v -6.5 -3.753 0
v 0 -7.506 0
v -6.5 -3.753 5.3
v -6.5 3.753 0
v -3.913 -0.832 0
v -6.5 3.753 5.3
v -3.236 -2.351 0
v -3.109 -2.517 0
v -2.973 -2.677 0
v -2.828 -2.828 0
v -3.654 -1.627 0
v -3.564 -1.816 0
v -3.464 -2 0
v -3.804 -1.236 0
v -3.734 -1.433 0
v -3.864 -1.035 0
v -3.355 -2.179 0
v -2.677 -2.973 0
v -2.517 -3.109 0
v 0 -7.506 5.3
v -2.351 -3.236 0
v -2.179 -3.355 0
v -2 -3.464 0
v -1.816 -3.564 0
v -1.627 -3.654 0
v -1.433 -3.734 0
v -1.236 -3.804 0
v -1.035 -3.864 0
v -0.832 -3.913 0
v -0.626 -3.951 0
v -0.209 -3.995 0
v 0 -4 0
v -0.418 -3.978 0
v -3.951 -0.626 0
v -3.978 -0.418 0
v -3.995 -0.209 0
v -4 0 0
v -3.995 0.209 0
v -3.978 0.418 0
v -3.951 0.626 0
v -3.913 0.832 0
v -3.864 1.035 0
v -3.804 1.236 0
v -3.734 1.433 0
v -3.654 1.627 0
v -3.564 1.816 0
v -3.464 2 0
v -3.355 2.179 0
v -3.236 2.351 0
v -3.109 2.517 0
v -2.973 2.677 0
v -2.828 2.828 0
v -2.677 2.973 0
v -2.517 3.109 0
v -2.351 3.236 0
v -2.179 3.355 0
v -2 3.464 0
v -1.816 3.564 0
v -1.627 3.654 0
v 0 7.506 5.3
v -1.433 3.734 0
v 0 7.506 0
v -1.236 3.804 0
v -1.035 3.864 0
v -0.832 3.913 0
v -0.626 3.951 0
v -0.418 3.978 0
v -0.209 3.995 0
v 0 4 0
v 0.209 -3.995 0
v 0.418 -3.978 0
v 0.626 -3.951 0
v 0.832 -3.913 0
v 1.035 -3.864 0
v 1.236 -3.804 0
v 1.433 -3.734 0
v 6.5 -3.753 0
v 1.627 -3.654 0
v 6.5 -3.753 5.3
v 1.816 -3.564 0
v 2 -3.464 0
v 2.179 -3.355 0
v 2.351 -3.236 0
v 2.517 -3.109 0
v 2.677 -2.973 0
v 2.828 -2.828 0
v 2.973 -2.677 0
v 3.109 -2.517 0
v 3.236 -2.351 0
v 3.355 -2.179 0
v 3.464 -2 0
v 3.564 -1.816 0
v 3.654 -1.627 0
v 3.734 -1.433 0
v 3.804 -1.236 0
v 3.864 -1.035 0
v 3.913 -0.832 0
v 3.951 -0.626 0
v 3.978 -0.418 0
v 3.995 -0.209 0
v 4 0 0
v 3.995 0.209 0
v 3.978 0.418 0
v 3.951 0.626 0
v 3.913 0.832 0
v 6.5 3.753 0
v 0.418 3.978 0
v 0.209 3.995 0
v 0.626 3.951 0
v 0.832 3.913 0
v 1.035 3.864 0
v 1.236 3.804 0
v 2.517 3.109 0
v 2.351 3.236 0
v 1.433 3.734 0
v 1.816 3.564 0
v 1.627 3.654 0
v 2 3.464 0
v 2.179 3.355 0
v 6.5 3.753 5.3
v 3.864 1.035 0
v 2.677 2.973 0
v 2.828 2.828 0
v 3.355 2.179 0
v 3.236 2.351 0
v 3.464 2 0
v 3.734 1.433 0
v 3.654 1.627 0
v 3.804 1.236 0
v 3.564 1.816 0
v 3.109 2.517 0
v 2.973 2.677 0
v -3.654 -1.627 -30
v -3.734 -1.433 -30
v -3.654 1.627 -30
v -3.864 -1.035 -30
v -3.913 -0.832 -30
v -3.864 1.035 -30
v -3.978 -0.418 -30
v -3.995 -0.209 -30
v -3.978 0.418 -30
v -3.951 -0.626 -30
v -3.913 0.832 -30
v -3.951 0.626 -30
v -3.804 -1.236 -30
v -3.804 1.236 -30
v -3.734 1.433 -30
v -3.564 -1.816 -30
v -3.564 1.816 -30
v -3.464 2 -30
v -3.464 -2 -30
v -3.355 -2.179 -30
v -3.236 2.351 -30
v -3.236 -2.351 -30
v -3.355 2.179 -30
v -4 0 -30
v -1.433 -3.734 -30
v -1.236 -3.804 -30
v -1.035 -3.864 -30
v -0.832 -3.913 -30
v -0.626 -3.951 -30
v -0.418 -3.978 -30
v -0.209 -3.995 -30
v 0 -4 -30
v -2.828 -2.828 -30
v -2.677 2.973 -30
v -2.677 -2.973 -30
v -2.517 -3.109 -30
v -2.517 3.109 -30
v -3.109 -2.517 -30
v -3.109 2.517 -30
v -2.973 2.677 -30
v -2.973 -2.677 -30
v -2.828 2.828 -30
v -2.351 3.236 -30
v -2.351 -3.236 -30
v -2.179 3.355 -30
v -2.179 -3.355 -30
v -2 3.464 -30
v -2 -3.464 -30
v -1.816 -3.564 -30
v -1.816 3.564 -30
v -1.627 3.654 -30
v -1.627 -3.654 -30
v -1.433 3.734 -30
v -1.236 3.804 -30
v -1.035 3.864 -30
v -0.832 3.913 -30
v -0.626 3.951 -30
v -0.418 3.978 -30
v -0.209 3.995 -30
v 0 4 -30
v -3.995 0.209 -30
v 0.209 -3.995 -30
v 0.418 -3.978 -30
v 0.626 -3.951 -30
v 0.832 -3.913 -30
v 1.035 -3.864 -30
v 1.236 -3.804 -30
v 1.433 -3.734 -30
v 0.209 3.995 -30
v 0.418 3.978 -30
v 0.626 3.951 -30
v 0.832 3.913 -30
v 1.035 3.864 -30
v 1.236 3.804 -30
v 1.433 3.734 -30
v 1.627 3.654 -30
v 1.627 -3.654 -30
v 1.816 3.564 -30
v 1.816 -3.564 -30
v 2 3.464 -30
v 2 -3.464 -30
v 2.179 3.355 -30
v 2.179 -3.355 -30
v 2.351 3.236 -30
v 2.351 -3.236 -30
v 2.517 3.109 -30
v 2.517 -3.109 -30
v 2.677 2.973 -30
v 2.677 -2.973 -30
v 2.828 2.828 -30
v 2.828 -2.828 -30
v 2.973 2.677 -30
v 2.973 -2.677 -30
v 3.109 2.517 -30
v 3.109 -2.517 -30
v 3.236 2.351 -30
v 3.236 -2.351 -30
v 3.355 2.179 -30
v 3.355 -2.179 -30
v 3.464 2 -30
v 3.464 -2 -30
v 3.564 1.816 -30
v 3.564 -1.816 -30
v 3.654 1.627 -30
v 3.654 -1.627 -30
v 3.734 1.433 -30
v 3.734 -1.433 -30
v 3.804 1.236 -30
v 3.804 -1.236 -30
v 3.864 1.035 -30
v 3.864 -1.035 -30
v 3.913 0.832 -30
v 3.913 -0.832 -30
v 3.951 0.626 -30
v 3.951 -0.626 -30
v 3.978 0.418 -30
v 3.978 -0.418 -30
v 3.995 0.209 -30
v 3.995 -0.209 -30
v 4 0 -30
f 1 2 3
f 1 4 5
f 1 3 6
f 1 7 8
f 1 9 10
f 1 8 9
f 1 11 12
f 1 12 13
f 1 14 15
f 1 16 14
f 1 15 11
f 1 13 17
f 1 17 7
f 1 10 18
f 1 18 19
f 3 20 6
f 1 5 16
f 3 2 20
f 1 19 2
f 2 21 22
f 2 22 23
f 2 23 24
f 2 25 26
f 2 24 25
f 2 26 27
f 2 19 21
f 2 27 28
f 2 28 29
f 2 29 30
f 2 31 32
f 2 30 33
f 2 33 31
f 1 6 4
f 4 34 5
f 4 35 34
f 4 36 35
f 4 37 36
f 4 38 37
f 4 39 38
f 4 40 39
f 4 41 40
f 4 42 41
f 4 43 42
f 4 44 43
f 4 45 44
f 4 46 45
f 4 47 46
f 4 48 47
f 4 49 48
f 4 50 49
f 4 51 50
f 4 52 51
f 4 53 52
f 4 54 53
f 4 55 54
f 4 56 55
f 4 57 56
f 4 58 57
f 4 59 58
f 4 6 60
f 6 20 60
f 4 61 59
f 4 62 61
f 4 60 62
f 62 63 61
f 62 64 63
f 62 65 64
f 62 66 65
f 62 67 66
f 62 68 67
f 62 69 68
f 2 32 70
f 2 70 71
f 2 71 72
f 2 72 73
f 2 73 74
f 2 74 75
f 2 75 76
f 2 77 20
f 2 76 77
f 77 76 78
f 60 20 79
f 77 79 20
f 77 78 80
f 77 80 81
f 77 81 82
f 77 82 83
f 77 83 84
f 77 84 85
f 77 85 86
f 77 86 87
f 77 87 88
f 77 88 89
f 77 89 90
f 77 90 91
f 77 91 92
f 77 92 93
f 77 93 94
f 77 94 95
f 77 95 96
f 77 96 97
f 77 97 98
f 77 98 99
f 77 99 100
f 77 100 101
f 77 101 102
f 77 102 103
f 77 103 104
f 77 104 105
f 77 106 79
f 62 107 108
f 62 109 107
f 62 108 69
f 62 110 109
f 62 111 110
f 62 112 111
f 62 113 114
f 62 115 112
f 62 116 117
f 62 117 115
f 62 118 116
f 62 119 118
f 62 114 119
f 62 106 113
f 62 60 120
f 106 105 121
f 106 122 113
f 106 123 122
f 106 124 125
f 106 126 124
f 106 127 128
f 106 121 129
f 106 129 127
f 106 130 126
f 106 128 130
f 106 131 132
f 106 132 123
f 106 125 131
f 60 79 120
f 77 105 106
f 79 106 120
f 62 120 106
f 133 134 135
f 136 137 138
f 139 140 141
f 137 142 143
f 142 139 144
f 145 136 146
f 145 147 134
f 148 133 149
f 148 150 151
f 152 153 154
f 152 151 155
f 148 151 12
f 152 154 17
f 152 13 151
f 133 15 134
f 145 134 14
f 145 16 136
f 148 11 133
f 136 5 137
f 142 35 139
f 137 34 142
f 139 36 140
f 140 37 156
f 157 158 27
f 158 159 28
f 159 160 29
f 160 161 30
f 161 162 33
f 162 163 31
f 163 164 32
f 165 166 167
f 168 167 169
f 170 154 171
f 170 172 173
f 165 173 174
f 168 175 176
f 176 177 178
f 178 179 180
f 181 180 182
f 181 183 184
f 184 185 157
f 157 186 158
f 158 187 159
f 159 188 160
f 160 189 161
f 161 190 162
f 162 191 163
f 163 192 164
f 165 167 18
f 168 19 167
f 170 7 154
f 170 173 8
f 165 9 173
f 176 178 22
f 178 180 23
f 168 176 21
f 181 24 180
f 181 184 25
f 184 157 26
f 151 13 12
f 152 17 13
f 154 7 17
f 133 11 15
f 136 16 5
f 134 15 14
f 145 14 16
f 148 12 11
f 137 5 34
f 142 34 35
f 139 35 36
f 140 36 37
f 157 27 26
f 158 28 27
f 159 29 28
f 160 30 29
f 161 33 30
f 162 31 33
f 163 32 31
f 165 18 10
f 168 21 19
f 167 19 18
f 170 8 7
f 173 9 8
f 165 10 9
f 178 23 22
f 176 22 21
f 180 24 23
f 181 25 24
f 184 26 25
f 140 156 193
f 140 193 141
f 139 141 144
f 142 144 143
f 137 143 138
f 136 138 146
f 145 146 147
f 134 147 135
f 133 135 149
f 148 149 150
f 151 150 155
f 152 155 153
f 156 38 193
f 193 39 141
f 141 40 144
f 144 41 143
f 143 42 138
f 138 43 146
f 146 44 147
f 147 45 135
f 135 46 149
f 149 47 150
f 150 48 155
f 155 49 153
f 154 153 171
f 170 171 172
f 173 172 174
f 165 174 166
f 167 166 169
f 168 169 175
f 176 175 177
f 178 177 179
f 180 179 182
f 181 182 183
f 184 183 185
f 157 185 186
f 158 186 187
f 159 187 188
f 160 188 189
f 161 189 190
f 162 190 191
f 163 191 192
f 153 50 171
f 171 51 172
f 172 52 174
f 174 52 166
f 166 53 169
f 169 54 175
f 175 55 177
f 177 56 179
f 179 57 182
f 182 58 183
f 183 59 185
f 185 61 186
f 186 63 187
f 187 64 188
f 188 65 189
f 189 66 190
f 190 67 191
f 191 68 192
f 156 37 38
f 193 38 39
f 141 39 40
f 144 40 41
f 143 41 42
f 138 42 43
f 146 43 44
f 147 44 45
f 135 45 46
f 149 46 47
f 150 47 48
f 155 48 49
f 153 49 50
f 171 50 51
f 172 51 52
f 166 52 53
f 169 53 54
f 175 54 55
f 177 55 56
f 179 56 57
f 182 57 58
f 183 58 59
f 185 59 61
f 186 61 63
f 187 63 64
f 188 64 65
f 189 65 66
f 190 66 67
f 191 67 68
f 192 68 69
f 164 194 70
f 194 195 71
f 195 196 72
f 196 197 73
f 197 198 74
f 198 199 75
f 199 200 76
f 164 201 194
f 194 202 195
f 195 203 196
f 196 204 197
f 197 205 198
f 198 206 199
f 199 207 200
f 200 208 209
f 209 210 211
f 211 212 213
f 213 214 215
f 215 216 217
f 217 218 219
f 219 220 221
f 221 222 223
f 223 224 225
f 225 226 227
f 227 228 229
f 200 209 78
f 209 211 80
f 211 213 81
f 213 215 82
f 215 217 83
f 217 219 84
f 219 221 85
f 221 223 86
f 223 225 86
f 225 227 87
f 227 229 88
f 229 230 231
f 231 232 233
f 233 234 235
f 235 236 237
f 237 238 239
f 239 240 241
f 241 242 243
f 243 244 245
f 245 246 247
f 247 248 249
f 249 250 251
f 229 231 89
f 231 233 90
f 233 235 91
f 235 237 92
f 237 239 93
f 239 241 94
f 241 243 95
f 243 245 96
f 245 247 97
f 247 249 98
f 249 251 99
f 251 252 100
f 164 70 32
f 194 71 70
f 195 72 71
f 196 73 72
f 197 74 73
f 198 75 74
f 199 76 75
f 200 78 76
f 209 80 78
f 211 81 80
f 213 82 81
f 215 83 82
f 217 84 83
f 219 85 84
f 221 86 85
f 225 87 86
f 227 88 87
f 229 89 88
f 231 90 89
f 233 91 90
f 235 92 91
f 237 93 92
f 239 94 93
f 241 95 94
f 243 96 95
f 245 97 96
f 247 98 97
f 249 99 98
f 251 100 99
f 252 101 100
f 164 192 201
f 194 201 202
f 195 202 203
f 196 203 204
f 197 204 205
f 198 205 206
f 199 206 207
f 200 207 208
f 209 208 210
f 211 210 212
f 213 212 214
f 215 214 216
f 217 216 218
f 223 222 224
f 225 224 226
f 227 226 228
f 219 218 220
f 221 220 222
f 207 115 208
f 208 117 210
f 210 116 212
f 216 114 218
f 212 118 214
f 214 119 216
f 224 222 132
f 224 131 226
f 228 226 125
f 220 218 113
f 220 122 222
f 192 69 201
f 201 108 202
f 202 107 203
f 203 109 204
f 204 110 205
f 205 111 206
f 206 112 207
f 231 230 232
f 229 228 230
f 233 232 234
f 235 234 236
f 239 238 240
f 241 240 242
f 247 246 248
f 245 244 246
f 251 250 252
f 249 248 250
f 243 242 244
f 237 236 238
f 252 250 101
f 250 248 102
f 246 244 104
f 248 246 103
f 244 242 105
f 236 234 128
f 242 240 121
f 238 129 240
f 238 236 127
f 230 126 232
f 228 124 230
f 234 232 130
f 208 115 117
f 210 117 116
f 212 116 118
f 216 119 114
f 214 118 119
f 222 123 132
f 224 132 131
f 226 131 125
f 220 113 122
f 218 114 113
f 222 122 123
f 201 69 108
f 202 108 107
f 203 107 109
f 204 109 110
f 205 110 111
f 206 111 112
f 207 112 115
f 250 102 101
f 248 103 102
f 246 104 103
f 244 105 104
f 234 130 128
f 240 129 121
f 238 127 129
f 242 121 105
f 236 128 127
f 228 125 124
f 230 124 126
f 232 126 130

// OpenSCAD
// M8 六角ボルト（ねじ山省略）
// 寸法：六角頭部 13mm (対辺) × 5.3mm、シャンク φ8mm × 30mm

$fn=120; // 円滑化
hex_width = 13;        // 六角対辺距離
hex_height = 5.3;      // 六角高さ
shank_dia = 8;         // シャンク直径
shank_length = 30;     // シャンク長

// 六角頭部
module hex_head() {
    rotate([0,0,30])  // 六角のフラットをX軸に揃える（オプション）
        linear_extrude(height=hex_height)
            polygon(points = [
                for(i=[0:5]) 
                    let(a=i*60)
                    [cos(a)*hex_width/2 / cos(30), sin(a)*hex_width/2 / cos(30)]
            ]);
}

// シャンク
module shank() {
    cylinder(d=shank_dia, h=shank_length, center=false);
}

// 合成
translate([0,0,0])
    hex_head();

translate([0,0,-shank_length])
    shank();
